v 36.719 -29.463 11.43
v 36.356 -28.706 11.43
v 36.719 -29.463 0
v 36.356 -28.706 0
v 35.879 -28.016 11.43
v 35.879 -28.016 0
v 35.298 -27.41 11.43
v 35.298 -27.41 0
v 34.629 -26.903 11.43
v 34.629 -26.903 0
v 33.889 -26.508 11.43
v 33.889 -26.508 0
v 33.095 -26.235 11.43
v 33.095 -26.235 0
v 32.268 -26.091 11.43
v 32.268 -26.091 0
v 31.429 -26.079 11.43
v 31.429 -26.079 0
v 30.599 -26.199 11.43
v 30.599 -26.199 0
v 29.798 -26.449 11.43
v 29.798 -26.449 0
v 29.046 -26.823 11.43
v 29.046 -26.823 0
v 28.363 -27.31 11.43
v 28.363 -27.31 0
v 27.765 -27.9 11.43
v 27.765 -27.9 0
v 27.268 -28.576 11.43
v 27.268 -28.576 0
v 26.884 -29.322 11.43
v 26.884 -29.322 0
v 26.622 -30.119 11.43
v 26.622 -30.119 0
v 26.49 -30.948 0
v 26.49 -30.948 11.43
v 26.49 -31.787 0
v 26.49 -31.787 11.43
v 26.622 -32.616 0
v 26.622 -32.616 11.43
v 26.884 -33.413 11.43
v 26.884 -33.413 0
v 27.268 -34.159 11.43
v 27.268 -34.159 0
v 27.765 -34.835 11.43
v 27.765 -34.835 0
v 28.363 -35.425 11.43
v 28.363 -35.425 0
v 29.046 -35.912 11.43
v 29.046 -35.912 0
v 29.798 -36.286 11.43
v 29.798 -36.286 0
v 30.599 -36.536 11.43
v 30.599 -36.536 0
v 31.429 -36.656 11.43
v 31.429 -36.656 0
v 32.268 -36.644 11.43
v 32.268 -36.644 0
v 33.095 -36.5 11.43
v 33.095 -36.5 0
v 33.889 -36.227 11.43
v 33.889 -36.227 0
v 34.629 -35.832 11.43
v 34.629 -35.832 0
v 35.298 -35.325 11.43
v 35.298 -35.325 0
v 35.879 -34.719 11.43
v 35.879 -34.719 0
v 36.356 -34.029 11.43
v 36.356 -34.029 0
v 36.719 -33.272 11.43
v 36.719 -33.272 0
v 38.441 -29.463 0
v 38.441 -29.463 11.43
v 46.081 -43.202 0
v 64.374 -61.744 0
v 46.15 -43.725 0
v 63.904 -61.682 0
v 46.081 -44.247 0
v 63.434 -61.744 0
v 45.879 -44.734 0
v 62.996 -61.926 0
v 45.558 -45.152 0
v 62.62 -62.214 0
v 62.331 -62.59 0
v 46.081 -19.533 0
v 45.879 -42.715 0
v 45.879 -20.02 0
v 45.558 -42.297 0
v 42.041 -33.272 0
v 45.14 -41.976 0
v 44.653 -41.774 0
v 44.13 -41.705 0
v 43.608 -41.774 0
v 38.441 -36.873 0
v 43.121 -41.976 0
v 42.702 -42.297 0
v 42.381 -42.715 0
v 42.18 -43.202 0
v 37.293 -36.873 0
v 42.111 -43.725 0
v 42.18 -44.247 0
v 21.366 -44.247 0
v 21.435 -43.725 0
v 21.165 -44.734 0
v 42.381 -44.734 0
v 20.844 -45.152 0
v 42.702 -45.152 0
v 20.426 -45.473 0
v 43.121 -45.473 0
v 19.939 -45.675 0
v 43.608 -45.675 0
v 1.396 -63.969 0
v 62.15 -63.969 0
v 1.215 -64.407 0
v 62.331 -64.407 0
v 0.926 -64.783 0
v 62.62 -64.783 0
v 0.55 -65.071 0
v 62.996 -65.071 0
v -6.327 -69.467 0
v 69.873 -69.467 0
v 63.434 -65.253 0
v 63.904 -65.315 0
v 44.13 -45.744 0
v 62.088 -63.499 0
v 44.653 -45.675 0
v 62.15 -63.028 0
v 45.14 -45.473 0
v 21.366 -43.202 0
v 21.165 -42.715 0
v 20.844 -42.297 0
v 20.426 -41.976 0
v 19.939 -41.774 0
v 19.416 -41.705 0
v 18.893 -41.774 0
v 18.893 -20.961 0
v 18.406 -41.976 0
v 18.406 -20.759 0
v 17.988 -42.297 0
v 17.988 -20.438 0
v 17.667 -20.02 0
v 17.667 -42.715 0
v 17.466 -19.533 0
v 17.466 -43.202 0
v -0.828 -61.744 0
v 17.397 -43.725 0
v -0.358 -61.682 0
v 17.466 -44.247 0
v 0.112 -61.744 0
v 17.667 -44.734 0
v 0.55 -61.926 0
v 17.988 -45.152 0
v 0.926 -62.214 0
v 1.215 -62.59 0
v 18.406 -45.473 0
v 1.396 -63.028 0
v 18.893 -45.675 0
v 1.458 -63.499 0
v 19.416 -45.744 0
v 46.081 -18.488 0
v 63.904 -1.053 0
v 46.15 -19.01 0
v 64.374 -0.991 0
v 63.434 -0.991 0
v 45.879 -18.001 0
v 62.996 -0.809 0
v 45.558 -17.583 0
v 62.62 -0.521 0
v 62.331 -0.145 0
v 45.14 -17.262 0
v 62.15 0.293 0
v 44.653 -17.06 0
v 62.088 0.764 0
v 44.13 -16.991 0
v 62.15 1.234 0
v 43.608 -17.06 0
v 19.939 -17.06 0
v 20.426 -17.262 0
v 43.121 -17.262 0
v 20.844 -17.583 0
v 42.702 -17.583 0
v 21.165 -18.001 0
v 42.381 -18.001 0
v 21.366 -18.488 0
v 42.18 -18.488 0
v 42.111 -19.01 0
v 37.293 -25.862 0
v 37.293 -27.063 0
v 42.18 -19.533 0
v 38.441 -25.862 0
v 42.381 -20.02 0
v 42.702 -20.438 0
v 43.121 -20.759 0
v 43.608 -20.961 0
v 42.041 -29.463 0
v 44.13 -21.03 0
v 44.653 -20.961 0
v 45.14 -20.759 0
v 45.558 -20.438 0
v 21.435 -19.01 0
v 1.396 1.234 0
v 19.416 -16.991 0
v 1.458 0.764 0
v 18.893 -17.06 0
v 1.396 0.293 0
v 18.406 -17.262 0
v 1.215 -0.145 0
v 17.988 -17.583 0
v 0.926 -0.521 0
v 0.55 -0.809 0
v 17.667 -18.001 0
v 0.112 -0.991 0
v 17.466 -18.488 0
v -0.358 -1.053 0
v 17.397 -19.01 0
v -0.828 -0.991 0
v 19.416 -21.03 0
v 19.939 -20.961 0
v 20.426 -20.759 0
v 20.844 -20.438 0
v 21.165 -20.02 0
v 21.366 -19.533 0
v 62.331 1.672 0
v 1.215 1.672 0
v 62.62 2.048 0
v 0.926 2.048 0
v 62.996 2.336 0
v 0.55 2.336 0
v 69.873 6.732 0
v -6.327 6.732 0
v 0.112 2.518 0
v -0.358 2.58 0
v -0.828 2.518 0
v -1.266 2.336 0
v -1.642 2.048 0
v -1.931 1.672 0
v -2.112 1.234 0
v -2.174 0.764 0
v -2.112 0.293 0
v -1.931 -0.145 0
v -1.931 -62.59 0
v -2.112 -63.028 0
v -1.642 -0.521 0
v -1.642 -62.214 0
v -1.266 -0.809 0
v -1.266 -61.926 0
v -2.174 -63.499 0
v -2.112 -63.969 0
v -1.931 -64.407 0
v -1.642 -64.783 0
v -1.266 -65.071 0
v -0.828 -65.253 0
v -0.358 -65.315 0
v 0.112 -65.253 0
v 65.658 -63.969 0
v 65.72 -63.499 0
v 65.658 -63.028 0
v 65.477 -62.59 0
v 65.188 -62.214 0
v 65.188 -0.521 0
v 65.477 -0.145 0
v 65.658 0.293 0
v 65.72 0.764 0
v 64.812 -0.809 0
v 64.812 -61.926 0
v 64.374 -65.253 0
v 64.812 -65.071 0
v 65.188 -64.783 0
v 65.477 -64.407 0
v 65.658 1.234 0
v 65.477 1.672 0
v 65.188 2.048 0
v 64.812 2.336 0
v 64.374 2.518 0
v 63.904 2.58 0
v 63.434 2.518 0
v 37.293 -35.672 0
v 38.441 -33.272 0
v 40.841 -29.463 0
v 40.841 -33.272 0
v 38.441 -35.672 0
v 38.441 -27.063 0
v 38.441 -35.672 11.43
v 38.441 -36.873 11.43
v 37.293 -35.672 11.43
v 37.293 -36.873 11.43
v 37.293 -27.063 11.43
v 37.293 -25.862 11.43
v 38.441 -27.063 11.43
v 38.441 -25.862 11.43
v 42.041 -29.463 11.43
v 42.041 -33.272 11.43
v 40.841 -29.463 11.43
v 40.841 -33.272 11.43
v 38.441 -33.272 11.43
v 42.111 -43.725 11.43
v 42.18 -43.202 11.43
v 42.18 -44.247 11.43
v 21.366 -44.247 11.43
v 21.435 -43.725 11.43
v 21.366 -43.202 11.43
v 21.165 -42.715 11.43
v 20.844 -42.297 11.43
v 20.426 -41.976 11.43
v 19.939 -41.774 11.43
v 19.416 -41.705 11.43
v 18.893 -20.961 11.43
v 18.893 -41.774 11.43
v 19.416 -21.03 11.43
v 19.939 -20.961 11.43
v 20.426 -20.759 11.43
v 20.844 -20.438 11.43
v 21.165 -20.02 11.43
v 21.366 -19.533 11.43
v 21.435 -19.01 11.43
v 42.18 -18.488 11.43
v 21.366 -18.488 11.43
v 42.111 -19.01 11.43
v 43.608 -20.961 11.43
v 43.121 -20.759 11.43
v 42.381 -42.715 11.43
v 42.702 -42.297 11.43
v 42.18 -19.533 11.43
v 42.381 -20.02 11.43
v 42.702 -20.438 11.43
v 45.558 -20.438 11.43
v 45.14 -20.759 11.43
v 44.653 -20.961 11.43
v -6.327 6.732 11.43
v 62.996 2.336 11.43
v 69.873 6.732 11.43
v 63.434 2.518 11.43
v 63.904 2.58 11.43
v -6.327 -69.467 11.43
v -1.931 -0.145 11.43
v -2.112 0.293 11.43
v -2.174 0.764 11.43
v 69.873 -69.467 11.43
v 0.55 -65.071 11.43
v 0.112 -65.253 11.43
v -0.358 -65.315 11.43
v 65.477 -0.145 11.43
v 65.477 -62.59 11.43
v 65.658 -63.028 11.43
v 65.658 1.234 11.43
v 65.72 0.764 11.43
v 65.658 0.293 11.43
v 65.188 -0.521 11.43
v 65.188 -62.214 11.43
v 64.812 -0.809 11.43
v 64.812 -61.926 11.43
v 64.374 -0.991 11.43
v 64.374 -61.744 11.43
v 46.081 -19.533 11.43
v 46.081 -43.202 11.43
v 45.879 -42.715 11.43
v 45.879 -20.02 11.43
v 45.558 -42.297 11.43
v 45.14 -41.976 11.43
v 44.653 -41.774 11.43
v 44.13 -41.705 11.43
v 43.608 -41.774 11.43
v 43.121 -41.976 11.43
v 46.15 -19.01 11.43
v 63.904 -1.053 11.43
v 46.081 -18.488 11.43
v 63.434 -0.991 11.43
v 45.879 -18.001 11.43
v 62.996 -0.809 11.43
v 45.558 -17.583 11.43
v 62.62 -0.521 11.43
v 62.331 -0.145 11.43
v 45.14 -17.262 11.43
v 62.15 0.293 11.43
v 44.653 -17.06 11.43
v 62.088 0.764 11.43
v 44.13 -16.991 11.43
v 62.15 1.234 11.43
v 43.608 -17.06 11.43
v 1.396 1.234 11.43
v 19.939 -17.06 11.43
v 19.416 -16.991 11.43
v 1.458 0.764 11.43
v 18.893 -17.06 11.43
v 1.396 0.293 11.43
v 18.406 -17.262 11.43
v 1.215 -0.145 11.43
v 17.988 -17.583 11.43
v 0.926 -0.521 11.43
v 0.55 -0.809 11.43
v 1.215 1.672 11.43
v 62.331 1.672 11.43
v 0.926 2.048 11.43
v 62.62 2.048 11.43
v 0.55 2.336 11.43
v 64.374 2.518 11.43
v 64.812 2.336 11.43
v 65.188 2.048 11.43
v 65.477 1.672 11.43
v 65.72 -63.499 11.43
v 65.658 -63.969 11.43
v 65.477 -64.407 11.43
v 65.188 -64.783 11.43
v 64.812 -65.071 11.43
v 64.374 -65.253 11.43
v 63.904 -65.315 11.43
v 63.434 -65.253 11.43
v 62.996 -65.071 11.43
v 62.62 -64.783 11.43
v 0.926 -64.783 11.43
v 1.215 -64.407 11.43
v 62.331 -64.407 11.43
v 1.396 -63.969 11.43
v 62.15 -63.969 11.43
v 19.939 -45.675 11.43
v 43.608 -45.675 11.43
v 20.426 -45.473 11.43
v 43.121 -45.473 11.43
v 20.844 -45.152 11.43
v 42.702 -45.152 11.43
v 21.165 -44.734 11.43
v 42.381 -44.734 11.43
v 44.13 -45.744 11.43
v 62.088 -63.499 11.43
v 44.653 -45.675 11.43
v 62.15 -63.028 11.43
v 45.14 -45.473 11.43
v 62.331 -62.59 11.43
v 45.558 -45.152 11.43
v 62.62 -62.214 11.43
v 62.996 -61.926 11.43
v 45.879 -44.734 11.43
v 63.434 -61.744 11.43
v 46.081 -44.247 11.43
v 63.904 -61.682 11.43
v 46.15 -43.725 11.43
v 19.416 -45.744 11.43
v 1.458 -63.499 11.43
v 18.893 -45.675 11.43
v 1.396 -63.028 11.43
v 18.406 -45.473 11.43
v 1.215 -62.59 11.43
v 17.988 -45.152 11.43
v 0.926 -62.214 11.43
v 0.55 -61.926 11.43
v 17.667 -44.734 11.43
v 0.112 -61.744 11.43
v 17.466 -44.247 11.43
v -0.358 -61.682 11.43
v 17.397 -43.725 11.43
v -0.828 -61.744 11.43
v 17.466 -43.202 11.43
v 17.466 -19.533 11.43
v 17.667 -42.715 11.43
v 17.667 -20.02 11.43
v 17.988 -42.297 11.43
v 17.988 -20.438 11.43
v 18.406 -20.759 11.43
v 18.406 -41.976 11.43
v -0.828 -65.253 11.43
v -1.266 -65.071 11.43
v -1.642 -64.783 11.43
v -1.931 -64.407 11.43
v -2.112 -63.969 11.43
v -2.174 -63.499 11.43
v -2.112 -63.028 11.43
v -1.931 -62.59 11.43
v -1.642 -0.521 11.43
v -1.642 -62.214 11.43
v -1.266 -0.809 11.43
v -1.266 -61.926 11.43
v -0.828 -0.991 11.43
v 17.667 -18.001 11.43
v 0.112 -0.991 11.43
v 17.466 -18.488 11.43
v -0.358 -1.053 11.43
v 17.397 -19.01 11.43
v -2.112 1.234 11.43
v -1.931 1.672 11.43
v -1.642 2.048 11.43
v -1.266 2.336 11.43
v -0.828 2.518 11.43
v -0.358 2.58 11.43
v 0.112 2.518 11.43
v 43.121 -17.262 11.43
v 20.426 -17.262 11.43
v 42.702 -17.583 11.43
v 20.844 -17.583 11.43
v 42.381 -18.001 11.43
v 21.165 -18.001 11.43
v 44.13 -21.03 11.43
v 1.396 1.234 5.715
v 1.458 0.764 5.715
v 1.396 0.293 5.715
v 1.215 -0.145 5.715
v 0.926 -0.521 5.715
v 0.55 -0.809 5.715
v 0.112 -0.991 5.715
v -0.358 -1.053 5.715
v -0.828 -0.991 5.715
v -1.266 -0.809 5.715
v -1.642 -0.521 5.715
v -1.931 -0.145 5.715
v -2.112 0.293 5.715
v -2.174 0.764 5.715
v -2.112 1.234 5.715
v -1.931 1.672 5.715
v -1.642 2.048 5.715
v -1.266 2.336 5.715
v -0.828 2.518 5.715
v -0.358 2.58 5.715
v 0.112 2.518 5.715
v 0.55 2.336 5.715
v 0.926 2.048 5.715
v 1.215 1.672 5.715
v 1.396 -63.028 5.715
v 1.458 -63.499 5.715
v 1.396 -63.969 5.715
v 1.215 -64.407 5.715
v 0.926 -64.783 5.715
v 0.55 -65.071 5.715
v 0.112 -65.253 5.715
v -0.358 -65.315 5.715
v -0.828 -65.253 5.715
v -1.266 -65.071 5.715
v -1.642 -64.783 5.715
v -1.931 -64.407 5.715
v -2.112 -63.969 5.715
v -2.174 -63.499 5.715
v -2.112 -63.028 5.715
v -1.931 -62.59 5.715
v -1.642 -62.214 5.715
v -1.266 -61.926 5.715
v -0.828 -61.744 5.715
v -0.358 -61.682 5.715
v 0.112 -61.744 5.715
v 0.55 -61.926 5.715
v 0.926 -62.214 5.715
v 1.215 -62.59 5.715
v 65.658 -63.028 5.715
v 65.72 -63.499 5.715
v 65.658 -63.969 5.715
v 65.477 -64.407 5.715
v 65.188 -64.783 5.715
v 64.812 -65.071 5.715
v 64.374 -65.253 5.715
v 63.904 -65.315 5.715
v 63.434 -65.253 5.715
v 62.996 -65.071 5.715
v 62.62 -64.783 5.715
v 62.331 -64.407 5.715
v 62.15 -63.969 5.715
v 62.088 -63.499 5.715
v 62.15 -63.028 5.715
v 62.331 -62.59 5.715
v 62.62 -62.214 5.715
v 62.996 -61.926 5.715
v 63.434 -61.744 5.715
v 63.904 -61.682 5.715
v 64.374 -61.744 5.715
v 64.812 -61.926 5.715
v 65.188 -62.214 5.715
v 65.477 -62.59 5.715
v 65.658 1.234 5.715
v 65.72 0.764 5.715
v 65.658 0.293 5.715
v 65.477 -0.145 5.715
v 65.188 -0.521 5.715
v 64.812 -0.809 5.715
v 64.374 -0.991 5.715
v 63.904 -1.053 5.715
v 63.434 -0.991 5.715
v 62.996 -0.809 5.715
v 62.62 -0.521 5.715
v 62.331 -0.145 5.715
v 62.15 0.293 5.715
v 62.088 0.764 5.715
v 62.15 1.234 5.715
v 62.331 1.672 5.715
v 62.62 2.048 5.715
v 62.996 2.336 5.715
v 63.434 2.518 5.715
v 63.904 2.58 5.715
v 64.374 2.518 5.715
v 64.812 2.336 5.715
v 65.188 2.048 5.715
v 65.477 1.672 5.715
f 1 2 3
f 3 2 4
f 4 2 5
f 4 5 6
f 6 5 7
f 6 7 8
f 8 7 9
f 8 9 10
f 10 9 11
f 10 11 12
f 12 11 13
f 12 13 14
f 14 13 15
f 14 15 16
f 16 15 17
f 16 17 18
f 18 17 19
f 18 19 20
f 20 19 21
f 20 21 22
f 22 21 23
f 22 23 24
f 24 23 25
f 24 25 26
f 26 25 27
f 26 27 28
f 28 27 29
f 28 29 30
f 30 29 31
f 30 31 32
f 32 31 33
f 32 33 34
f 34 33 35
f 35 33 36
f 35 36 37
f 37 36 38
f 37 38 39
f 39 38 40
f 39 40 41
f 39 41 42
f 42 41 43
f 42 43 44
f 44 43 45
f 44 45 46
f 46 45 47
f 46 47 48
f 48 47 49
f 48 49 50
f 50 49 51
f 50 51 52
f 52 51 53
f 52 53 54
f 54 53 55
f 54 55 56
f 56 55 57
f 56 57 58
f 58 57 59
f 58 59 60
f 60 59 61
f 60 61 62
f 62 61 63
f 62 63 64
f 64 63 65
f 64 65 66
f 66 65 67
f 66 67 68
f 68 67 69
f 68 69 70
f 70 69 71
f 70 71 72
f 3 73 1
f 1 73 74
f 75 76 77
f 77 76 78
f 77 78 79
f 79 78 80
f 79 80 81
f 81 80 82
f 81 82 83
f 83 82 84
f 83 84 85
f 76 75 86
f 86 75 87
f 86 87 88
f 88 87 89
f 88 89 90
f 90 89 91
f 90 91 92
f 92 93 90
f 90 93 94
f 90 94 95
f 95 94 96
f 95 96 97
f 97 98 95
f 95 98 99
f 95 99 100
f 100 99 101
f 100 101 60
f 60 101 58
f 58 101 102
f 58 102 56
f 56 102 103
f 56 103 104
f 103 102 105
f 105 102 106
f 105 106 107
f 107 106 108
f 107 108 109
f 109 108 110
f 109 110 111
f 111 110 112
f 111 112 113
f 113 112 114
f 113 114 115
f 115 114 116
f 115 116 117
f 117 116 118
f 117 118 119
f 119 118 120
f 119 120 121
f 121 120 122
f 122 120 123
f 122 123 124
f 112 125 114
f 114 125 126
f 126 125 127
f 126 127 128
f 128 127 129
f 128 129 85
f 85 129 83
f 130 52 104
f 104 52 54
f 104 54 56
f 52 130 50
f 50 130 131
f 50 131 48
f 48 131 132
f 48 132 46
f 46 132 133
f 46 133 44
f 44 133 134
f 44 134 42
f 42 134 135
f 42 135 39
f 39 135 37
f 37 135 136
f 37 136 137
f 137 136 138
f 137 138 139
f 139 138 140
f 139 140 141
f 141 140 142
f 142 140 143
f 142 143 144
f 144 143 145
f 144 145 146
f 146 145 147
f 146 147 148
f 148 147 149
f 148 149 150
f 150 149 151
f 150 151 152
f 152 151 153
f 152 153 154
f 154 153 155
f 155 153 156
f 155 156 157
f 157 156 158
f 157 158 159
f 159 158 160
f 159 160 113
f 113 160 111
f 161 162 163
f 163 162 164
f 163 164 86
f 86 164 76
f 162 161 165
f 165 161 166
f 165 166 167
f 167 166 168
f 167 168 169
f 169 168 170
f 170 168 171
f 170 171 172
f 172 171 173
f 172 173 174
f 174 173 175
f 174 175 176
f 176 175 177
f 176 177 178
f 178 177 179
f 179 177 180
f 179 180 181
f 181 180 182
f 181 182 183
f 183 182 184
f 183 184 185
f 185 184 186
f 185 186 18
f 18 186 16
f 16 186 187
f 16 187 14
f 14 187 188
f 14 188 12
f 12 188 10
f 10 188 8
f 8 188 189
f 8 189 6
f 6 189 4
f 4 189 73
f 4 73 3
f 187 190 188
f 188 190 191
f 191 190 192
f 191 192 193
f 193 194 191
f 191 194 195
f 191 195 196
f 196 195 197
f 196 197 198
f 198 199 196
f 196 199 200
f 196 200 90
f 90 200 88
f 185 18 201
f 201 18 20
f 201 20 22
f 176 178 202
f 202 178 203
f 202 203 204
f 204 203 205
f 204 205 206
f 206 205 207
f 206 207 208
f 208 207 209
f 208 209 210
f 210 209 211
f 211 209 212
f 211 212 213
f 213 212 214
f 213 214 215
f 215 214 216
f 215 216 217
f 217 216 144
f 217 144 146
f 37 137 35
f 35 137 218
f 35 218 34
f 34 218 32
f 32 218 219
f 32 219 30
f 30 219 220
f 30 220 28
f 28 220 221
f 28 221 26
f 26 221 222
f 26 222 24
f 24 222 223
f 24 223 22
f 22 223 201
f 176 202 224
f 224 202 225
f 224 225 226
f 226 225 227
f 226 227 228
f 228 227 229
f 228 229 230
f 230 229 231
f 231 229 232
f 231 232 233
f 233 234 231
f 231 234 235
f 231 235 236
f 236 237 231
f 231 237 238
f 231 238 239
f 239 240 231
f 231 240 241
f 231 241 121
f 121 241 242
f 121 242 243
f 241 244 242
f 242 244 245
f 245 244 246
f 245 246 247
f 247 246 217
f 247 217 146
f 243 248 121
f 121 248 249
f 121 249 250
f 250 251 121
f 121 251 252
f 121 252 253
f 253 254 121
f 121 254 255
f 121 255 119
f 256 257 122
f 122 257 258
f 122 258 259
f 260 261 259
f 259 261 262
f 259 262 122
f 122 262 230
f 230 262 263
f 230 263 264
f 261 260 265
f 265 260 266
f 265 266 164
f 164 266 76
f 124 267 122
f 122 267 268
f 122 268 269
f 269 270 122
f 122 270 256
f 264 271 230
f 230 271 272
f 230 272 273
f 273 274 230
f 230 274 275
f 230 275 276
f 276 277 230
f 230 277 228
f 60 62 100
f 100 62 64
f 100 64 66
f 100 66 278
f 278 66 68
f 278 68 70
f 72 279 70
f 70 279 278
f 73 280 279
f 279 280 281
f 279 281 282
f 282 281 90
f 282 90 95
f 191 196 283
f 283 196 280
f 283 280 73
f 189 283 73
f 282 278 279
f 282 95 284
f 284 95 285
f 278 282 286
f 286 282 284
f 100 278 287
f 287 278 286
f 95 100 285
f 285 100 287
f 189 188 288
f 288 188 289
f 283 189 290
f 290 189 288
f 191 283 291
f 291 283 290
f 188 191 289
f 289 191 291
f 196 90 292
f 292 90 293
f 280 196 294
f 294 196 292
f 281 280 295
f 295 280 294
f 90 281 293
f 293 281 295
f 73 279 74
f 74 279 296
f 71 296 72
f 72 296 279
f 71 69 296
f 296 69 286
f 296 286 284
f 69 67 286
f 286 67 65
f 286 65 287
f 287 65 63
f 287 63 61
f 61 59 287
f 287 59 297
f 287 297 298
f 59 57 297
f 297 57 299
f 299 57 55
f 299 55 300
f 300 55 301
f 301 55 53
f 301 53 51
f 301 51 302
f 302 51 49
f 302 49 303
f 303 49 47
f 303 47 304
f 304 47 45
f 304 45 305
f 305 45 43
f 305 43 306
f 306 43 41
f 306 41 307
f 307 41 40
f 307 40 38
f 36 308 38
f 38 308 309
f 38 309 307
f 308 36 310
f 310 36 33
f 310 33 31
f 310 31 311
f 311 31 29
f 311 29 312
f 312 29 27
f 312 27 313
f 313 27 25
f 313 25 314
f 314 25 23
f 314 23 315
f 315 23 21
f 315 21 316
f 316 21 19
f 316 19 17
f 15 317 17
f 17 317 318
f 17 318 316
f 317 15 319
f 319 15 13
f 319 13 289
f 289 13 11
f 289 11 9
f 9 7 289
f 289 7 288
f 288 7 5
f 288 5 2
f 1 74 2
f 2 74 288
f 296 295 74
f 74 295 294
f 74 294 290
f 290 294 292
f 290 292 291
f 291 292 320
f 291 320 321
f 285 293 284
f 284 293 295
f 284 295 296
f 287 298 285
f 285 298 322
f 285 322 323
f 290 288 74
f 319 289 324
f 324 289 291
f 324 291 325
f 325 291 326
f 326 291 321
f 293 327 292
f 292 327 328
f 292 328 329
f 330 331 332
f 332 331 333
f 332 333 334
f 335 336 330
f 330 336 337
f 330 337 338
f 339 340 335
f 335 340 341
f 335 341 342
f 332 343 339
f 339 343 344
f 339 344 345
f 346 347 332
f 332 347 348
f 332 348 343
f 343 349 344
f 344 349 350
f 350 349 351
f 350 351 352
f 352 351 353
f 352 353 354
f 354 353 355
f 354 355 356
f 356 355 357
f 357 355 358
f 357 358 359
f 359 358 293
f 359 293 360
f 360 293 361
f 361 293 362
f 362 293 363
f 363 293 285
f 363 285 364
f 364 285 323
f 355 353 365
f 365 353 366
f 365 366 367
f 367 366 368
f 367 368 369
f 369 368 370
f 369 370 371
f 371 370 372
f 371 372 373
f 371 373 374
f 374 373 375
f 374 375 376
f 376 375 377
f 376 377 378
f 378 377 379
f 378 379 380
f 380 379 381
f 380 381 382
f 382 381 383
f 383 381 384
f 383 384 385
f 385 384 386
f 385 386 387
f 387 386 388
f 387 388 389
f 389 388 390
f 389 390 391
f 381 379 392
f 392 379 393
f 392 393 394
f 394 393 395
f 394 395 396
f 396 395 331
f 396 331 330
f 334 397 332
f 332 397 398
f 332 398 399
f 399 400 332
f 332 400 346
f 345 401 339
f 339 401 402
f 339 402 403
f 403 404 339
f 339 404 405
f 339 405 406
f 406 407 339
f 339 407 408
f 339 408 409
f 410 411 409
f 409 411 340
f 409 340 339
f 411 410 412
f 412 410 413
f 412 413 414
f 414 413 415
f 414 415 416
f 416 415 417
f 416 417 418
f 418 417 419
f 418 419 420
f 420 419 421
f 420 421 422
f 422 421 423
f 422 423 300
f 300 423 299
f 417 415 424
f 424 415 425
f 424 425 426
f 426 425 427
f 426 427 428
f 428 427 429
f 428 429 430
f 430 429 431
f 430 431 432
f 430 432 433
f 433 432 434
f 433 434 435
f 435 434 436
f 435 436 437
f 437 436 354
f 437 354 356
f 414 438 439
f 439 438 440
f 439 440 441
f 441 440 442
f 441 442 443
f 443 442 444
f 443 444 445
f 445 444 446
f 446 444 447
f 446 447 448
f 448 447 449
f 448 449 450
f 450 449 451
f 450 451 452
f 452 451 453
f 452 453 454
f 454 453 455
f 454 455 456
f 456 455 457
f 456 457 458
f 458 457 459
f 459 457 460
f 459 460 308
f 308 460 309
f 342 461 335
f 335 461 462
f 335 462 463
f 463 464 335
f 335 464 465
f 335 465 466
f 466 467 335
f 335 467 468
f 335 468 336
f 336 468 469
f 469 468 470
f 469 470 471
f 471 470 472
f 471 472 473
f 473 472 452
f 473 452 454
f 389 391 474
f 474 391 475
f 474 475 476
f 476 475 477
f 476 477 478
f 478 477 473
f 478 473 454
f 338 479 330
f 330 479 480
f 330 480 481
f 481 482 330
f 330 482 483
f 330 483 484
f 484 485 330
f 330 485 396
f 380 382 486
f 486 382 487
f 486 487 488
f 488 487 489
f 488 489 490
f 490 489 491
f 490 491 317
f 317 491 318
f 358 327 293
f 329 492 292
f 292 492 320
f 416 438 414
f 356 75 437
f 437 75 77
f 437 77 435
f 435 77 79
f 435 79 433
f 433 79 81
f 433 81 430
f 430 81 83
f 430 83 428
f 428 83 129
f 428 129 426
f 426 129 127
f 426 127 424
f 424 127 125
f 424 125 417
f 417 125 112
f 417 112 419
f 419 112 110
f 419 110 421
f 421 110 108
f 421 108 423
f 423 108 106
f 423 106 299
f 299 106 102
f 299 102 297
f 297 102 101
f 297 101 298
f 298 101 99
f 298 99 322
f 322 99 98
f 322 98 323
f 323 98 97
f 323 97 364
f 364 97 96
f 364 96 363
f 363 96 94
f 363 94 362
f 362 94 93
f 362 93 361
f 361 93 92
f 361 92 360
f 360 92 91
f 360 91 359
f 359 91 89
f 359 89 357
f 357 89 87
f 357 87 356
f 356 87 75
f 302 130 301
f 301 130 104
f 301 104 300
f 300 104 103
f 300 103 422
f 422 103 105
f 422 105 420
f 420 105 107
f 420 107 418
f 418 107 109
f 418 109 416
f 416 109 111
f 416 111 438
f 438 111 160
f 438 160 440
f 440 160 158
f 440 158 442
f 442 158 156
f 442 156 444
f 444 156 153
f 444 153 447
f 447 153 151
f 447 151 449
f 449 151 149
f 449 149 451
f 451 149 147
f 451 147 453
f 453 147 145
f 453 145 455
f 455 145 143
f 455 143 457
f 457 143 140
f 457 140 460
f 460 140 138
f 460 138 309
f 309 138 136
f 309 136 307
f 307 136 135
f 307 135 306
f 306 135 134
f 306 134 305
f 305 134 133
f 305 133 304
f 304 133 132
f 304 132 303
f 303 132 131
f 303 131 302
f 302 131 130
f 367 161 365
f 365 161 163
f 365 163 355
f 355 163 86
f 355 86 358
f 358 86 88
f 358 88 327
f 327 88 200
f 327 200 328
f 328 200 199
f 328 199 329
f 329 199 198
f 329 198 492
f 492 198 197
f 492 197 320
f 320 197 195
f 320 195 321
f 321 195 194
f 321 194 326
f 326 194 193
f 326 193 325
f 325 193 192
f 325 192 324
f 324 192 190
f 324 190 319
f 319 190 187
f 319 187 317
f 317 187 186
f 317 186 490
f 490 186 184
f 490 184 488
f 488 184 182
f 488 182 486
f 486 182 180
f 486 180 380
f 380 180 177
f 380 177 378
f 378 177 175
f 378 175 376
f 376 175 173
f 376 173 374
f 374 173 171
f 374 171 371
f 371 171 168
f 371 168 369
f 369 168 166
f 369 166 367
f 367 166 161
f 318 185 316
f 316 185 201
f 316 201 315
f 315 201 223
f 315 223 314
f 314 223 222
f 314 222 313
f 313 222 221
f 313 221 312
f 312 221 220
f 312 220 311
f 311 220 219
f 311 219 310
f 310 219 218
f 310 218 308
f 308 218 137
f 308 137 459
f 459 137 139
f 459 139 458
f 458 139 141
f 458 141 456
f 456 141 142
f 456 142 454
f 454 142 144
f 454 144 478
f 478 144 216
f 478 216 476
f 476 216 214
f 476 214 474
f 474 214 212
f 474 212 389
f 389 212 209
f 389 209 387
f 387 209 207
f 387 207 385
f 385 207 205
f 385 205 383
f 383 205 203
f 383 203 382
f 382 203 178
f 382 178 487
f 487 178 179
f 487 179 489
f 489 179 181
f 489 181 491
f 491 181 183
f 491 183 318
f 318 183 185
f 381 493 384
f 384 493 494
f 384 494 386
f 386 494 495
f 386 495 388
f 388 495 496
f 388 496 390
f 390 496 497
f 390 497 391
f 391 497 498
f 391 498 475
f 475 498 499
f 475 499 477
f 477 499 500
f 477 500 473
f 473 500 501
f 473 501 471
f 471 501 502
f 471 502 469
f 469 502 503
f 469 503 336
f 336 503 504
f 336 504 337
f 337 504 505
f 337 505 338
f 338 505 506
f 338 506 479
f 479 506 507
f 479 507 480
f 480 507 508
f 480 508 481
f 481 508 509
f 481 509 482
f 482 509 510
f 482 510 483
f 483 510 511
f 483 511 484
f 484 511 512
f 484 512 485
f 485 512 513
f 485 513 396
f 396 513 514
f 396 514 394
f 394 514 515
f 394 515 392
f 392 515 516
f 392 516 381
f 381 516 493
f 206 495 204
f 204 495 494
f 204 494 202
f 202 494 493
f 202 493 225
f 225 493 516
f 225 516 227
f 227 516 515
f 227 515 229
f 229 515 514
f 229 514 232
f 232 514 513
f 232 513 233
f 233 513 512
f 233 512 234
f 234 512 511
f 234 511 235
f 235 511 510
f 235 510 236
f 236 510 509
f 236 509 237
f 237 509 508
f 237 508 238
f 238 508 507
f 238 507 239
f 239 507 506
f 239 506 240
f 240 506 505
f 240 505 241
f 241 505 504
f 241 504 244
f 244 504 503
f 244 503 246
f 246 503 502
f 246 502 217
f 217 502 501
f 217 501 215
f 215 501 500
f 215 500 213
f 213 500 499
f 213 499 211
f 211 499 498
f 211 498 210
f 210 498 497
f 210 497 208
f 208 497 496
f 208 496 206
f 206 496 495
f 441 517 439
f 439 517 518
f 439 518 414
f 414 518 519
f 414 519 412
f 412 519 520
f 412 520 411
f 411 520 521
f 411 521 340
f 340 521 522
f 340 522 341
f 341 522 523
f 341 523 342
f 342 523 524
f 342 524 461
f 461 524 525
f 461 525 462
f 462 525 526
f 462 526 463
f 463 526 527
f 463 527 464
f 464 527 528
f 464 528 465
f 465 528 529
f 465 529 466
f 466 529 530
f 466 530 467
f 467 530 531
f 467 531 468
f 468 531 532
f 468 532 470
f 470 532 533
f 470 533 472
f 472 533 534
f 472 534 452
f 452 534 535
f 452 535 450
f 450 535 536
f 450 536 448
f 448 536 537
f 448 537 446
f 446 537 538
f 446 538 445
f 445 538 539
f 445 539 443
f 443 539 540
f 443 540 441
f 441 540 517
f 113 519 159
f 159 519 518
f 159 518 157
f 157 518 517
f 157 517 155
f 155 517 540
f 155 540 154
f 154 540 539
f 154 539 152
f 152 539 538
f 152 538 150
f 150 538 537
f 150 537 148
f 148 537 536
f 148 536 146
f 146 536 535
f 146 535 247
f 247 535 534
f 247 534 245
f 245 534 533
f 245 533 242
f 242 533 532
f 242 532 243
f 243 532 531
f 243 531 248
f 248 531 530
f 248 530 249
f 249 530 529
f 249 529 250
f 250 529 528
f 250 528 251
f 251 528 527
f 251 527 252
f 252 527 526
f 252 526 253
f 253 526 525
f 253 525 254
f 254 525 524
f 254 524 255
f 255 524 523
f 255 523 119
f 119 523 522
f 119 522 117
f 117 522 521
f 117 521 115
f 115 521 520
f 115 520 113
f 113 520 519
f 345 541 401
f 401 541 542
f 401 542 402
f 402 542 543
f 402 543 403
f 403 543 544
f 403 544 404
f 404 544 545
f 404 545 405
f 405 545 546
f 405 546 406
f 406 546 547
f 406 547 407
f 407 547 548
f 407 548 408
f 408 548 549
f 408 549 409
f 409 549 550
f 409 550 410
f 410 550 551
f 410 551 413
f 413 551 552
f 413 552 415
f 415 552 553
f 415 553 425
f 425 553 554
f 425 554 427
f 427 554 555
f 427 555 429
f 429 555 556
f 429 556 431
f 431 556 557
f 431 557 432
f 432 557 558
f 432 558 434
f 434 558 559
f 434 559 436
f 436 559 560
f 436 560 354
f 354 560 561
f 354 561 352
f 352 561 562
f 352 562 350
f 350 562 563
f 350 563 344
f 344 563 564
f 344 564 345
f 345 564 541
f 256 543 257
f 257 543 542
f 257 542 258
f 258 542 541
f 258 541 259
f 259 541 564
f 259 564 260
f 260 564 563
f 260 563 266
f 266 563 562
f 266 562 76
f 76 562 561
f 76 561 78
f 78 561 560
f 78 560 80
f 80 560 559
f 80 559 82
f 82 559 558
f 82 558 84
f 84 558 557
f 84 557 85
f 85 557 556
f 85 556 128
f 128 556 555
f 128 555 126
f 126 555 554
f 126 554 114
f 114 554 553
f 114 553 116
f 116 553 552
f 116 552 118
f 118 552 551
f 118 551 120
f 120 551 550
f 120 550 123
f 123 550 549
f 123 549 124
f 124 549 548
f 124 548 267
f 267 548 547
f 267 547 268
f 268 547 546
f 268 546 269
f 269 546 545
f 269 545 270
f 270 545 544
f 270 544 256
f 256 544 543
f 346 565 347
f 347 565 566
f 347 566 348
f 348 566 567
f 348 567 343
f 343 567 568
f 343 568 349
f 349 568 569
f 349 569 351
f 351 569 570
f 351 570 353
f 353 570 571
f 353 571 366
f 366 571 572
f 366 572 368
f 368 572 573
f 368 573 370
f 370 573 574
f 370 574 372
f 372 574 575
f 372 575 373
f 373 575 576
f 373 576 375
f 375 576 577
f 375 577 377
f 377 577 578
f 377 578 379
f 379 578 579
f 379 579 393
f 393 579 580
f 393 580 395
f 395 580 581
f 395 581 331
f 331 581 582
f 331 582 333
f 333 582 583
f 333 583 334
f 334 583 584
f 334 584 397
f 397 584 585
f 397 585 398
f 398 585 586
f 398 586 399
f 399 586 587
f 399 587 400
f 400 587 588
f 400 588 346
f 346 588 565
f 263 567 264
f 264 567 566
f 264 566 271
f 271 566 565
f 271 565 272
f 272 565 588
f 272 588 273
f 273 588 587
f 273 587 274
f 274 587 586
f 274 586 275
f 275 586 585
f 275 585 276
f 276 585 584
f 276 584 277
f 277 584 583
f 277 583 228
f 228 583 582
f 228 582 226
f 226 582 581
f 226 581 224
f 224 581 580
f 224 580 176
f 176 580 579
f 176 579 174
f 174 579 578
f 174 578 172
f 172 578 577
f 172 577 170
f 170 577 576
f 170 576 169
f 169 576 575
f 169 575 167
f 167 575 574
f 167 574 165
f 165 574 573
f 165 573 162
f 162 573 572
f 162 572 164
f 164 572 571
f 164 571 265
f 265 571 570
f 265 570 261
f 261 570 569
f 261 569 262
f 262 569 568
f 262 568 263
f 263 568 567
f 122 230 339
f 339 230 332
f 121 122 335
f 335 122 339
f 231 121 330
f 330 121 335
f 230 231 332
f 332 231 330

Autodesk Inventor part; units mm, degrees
ref_plane "YZ Plane" through (0, 0, 0) normal (1, 0, 0) x (0, 1, 0)
ref_plane "XZ Plane" through (0, 0, 0) normal (0, 1, 0) x (-1, 0, 0)
ref_plane "XY Plane" through (0, 0, 0) normal (0, 0, 1) x (1, 0, 0)
sketch "Sketch1" plane through (0, 0, 0) normal (0, 0, 1) x (1, 0, 0)
  line L0 (-6.3269, 6.7325) -> (69.8731, 6.7325)
  line L1 (69.8731, 6.7325) -> (69.8731, -69.4675)
  line L2 (69.8731, -69.4675) -> (-6.3269, -69.4675)
  line L3 (-6.3269, -69.4675) -> (-6.3269, 6.7325)
  line L4 (-6.3269, 6.7325) -> (69.8731, -69.4675) construction
  line L5 (69.8731, 6.7325) -> (-6.3269, -69.4675) construction
  circle A0 centre (31.7731, -31.3675) radius 4.7625
  circle A1 centre (63.9041, 0.7635) radius 1.8161
  circle A2 centre (63.9041, -63.4985) radius 1.8161
  circle A3 centre (-0.3579, -63.4985) radius 1.8161
  circle A4 centre (-0.3579, 0.7635) radius 1.8161
  line L6 (12.7231, -50.4175) -> (50.8231, -50.4175) construction
  line L7 (50.8231, -50.4175) -> (50.8231, -12.3175) construction
  line L8 (50.8231, -12.3175) -> (12.7231, -12.3175) construction
  line L9 (12.7231, -12.3175) -> (12.7231, -50.4175) construction
  line L10 (12.7231, -50.4175) -> (50.8231, -12.3175) construction
  line L11 (50.8231, -50.4175) -> (12.7231, -12.3175) construction
  circle A5 centre (19.416, -19.0104) radius 2.0193
  circle A6 centre (44.1302, -19.0104) radius 2.0193
  circle A7 centre (19.416, -43.7246) radius 2.0193
  circle A8 centre (44.1302, -43.7246) radius 2.0193
  dimension "d0" = 76.2
  dimension "d1" = 76.2
  dimension "d2" = 9.525
  dimension "d4" = 3.6322
  dimension "d5" = 3.6322
  dimension "d6" = 3.6322
  dimension "d7" = 3.6322
  dimension "d11" = 38.1
  dimension "d12" = 38.1
  dimension "d13" = 4.0386
  dimension "d14" = 4.0386
  dimension "d15" = 4.0386
  dimension "d16" = 4.0386
  dimension "d17" = 24.7142
  dimension "d18" = 64.262
extrude "Extrusion1" add sketch "Sketch1" along normal blind 11.43
sketch "Sketch2" plane through (0, 0, 11.43) normal (0, 0, 1) x (1, 0, 0)
  circle A0 centre (31.7731, -31.3675) radius 4.7625 construction
  line L0 (27.0106, -31.3675) -> (38.4406, -31.3675) construction
  line L1 (38.4406, -31.3675) -> (38.4406, -29.5895) construction
  line L2 (38.4406, -29.5895) -> (34.9614, -29.5895)
  line L3 (34.9614, -29.5895) -> (34.9614, -33.8756)
  line L4 (34.9614, -33.8756) -> (38.4406, -33.8756)
  line L5 (38.4406, -33.8756) -> (38.4406, -29.5895)
  point P0 (0, 0)
  dimension "d21" = 11.43
  dimension "d22" = 1.778
extrude "Extrusion2" cut sketch "Sketch2" along normal through all both and the other way through all
sketch "Sketch3" plane through (0, 0, 11.43) normal (0, 0, 1) x (1, 0, 0)
  line L0 (38.4406, -33.8756) -> (35.8216, -33.8756) projected
  line L1 (38.4406, -29.5895) -> (35.8216, -29.5895)
  line L2 (35.8216, -33.8756) -> (38.4406, -33.8756)
  line L3 (38.4406, -33.8756) -> (38.4406, -29.5895)
  arc A0 (35.8216, -33.8756) -> (36.1912, -29.5895) centre (31.7731, -31.3675) ccw
  line L4 (35.8216, -33.8756) -> (38.4406, -33.8756)
  line L5 (38.4406, -29.5895) -> (36.1912, -29.5895) projected
  line L6 (38.4406, -29.5895) -> (36.1912, -29.5895)
  point P0 (0, 0)
  point P1 (31.7731, -31.3675)
extrude "Extrusion3" add sketch "Sketch3" against normal up to surface (11.43 mm away)
sketch "Sketch4" plane through (0, 0, 11.43) normal (0, 0, 1) x (1, 0, 0)
  circle A0 centre (31.7731, -31.3675) radius 4.7625 construction
  line L0 (27.0106, -31.3675) -> (38.4406, -31.3675) construction
  line L1 (38.4406, -31.3675) -> (38.4406, -29.4625) construction
  line L2 (38.4406, -29.4625) -> (38.4406, -33.2725)
  line L3 (38.4406, -33.2725) -> (36.138, -33.2725)
  line L4 (38.4406, -29.4625) -> (36.138, -29.4625)
  arc A1 (36.138, -33.2725) -> (36.138, -29.4625) centre (31.7731, -31.3675) ccw
  point P0 (0, 0)
  dimension "d27" = 11.43
  dimension "d28" = 1.905
  dimension "d29" = 3.81
extrude "Extrusion4" cut sketch "Sketch4" against normal up to surface (11.43 mm away)
sketch "Sketch5" plane through (0, 0, 11.43) normal (0, 0, 1) x (1, 0, 0)
  line L0 (38.4406, -33.2725) -> (38.4406, -29.4625) construction
  line L1 (38.4406, -29.4625) -> (38.4406, -27.0625) construction
  line L2 (38.4406, -33.2725) -> (38.4406, -35.6725) construction
  line L3 (38.4406, -35.6725) -> (37.2928, -35.6725)
  line L4 (37.2928, -35.6725) -> (37.2928, -36.8725)
  line L5 (37.2928, -36.8725) -> (38.4406, -36.8725)
  line L6 (38.4406, -36.8725) -> (38.4406, -35.6725)
  line L7 (38.4406, -27.0625) -> (37.2928, -27.0625)
  line L8 (37.2928, -27.0625) -> (37.2928, -25.8625)
  line L9 (37.2928, -25.8625) -> (38.4406, -25.8625)
  line L10 (38.4406, -25.8625) -> (38.4406, -27.0625)
  arc A0 (36.138, -29.4625) -> (36.138, -33.2725) centre (31.7731, -31.3675) ccw projected
  line L11 (36.138, -29.4625) -> (38.4406, -29.4625) construction
  line L12 (38.4406, -29.4625) -> (40.8406, -29.4625) construction
  line L13 (40.8406, -29.4625) -> (42.0406, -29.4625)
  line L14 (42.0406, -29.4625) -> (42.0406, -33.2725)
  line L15 (42.0406, -33.2725) -> (40.8406, -33.2725)
  line L16 (40.8406, -33.2725) -> (40.8406, -29.4625)
  point P0 (0, 0)
  dimension "d32" = 2.4
  dimension "d33" = 2.4
  dimension "d34" = 1.2
  dimension "d35" = 1.2
  dimension "d36" = 7
  dimension "d37" = 2.4
  dimension "d38" = 1.2
extrude "Extrusion5" cut sketch "Sketch5" against normal blind 25.4
sketch "Sketch6" plane through (0, 0, 11.43) normal (0, 0, 1) x (1, 0, 0)
  point P0 (0, 0)
sketch "Sketch7" plane through (0, 0, 11.43) normal (0, 0, 1) x (1, 0, 0)
  arc A0 (36.138, -29.4625) -> (36.138, -33.2725) centre (31.7731, -31.3675) ccw projected
  circle A1 centre (31.7731, -31.3675) radius 5.3
  point P0 (0, 0)
  dimension "d41" = 10.6
extrude "Extrusion6" cut sketch "Sketch7" against normal through all
properties part number "armmount"
